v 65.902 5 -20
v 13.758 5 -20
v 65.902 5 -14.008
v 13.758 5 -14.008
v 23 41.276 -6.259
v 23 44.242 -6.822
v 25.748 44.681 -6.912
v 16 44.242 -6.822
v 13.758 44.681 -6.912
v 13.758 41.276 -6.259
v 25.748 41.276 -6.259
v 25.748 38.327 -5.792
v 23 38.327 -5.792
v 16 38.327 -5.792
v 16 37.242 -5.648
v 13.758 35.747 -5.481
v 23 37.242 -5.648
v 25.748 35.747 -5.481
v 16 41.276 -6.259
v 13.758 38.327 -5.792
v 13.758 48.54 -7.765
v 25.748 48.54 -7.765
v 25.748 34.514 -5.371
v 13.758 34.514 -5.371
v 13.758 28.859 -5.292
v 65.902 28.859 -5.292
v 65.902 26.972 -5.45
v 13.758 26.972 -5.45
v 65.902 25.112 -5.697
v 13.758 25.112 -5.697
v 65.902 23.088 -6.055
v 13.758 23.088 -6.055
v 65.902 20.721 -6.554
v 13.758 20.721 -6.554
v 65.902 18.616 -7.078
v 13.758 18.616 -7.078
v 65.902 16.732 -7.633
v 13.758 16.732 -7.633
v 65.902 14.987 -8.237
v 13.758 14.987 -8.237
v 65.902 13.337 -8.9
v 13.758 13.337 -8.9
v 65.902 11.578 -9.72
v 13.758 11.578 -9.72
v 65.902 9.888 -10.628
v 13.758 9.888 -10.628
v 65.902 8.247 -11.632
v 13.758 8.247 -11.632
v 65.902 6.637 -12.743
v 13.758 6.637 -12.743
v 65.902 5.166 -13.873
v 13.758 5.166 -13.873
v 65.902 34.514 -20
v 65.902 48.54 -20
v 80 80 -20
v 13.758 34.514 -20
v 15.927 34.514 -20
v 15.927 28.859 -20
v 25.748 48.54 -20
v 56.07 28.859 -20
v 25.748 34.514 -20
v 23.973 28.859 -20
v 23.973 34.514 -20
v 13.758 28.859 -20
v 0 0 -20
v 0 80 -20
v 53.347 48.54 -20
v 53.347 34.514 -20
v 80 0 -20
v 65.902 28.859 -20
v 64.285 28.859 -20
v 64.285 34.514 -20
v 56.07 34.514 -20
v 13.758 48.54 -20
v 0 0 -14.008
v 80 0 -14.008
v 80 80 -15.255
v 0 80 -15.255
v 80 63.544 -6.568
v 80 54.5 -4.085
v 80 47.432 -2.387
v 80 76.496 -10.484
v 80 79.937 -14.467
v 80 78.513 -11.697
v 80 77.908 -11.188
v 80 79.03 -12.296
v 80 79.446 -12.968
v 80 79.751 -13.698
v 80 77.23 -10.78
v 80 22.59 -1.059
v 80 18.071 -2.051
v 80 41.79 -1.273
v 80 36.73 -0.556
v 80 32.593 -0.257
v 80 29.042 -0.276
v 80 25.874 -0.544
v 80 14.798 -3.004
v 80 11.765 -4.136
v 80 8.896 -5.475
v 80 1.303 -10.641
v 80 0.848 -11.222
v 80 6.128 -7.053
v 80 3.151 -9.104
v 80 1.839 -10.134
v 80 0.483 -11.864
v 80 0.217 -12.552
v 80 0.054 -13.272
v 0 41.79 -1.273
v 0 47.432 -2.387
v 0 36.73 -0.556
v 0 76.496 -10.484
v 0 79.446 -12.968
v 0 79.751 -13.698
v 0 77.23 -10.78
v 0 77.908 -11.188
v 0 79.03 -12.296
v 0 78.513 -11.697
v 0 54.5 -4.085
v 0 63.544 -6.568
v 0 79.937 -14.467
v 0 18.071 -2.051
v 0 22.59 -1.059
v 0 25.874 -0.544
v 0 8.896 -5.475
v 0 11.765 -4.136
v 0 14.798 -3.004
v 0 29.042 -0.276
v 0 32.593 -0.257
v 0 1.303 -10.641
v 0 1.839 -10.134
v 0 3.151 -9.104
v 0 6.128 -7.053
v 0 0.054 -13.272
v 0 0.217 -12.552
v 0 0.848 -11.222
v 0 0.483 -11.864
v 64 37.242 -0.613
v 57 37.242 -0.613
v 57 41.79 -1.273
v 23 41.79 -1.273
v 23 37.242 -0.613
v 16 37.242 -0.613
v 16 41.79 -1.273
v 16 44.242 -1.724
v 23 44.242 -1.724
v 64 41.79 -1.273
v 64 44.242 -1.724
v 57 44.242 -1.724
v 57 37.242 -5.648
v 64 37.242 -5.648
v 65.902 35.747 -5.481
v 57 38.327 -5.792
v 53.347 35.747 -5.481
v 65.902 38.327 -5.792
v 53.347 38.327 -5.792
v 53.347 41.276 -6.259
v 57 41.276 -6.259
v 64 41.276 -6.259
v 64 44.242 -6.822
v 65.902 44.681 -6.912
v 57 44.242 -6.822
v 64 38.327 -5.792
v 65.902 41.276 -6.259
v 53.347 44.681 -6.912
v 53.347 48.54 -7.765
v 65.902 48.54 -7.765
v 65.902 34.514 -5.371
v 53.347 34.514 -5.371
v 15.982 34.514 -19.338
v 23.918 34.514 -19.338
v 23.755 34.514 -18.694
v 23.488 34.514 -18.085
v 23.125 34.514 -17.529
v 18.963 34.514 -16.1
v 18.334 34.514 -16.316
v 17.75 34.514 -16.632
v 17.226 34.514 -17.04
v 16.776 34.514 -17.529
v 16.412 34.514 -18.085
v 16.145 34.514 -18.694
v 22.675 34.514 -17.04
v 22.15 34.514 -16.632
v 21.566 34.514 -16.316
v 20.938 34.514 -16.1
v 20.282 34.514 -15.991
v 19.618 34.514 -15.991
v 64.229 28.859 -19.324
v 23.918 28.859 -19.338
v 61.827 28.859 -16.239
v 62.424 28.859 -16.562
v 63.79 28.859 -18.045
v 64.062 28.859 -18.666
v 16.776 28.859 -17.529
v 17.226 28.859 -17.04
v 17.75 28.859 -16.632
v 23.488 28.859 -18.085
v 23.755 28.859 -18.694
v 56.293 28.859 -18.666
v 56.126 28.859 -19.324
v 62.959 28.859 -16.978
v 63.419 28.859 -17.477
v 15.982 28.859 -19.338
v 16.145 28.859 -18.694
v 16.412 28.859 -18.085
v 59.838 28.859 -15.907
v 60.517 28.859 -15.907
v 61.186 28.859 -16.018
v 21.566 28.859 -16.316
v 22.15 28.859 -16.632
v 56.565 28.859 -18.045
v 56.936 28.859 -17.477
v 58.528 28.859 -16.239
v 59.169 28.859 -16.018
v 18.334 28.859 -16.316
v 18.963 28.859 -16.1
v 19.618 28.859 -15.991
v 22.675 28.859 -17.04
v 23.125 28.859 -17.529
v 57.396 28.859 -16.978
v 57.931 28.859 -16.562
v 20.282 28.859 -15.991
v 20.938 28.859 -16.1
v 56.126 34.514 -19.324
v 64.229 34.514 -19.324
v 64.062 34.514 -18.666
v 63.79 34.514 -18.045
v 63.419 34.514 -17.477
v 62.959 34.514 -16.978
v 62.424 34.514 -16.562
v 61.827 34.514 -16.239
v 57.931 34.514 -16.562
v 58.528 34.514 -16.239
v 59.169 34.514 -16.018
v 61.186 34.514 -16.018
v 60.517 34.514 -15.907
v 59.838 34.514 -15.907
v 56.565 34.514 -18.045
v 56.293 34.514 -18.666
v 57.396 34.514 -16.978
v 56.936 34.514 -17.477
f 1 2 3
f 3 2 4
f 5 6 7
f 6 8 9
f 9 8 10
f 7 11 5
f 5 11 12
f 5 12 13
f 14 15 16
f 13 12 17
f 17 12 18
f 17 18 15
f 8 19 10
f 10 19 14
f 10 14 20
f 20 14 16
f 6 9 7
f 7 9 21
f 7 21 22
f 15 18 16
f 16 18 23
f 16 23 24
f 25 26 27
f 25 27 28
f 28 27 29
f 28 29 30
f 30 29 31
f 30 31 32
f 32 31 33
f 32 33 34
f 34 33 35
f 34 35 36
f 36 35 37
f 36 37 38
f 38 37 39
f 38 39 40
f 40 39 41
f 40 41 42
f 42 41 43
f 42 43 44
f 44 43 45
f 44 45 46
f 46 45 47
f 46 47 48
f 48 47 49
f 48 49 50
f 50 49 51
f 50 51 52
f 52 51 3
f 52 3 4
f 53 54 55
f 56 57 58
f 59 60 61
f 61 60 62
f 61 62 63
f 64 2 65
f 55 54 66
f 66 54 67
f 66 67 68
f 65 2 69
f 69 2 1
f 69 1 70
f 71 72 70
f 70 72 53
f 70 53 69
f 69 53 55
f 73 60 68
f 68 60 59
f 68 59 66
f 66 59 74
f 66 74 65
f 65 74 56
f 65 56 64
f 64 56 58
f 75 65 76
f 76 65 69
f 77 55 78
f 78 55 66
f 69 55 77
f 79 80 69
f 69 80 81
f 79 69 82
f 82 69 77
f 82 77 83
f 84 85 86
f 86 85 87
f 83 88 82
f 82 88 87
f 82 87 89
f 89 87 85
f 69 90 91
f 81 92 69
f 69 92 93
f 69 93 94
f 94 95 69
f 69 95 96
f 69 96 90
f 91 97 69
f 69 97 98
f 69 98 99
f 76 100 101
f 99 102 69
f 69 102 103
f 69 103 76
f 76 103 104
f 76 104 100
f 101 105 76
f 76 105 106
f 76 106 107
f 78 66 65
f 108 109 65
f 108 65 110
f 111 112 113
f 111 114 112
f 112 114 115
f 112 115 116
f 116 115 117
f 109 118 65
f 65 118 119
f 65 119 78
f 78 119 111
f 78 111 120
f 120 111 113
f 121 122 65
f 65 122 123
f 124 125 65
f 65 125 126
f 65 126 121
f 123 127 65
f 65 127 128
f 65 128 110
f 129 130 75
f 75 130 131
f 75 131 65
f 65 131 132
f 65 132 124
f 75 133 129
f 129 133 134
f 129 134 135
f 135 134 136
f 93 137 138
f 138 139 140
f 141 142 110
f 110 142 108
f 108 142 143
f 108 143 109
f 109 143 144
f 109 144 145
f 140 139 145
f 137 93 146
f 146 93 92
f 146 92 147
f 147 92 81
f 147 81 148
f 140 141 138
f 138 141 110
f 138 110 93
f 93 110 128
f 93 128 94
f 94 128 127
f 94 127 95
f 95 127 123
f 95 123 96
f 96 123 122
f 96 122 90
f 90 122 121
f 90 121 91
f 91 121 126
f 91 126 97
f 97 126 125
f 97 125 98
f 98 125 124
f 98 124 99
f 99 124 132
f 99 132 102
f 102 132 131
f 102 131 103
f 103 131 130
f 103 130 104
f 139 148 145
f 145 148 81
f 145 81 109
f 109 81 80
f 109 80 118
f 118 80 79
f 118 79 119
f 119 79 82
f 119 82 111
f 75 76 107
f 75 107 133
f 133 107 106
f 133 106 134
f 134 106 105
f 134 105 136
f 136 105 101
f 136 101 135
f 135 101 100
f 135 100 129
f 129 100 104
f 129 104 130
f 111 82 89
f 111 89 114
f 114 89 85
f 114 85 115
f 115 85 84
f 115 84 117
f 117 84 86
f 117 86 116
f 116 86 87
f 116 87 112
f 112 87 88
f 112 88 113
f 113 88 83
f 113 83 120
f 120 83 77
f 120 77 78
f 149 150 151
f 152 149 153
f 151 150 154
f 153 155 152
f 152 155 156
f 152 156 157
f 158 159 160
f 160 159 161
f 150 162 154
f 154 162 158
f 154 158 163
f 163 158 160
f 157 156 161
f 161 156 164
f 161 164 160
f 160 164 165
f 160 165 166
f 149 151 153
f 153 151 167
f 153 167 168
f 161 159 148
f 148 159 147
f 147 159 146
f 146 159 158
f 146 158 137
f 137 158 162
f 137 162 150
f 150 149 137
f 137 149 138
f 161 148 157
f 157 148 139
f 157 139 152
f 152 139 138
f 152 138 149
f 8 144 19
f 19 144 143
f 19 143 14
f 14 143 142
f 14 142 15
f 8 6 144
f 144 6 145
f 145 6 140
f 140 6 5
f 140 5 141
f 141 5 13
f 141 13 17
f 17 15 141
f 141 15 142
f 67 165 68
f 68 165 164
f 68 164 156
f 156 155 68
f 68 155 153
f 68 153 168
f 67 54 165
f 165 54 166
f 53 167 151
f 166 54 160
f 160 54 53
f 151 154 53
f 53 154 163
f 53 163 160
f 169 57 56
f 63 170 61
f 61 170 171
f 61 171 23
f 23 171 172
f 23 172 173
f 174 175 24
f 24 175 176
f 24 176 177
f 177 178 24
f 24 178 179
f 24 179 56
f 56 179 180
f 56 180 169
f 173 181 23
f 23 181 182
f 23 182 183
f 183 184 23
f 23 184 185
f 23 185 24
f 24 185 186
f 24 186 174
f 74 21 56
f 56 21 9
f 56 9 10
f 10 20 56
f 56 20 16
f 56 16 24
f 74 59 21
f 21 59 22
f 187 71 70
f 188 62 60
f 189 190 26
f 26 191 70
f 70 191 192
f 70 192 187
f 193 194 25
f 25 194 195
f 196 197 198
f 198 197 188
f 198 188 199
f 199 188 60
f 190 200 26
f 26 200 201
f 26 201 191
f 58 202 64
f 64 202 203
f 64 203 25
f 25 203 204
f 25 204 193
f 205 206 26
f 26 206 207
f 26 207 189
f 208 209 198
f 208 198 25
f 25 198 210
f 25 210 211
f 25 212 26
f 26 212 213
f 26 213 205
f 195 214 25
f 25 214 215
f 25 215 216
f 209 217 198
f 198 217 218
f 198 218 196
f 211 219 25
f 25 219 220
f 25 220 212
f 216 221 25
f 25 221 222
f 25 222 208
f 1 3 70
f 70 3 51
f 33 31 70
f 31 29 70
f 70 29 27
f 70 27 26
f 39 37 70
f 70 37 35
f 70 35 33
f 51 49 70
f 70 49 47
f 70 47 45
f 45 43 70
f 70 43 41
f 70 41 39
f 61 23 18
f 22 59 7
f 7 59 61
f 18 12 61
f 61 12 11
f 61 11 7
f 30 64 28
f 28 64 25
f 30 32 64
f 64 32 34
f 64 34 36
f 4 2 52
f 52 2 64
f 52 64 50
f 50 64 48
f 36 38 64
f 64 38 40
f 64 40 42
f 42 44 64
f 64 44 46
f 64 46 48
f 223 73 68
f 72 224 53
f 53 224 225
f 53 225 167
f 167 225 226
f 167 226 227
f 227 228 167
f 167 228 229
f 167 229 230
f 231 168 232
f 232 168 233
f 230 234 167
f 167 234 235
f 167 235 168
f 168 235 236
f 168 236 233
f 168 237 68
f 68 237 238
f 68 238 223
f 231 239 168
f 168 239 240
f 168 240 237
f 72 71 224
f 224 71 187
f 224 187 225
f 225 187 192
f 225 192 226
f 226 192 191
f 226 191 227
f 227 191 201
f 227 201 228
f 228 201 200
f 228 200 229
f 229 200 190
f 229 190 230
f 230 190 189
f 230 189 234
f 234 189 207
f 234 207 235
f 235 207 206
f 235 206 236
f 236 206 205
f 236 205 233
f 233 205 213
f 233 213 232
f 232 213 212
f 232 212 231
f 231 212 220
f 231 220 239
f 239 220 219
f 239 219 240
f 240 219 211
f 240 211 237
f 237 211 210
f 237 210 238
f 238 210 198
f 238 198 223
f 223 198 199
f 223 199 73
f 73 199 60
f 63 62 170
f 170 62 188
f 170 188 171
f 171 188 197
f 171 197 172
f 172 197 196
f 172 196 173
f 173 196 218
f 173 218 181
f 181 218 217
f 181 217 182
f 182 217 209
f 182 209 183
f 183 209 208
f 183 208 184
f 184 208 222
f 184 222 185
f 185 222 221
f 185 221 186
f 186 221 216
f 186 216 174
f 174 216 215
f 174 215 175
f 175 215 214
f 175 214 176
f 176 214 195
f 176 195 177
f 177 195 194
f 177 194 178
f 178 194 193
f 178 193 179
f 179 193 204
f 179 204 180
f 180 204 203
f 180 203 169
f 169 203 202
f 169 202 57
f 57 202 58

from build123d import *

# Parameters (mm, degrees)
SKETCH_1_W          = 20
SKETCH_1_H          = 80
EXTRUDE_1_DEPTH     = 80
CUT_EXTRUDE_1_DEPTH = 80
FILLET_1_R          = 5
SHELL_START         = 5
SHELL_3_DEPTH       = 70
SKETCH_3_W          = 7
SKETCH_3_H          = 7
CUT_EXTRUDE_3_DEPTH = 80
EXTRUDE_2_REACH     = 116.851
SKETCH_5_W          = 27.599035465
SKETCH_5_H          = 14.025739335
CUT_EXTRUDE_4_REACH = 99.033


# Read off the part's stored shape, not the designer's step: 쉘3
with BuildPart() as part:
    # 스케치1 → 보스-돌출1 (new body)
    with BuildSketch(Plane(origin=(0, 0, 0), x_dir=(0, 0, -1), z_dir=(1, 0, 0))):
        with Locations((10, 40)):
            Rectangle(SKETCH_1_W, SKETCH_1_H)
    extrude(amount=EXTRUDE_1_DEPTH)

    # 스케치2 → 컷-돌출1 (cut)
    with BuildSketch(Plane(origin=(80, 0, 0), x_dir=(0, 0, -1), z_dir=(1, 0, 0))):
        with BuildLine():
            Line((11.591590564, 80), (0, 80))
            Line((0, 80), (0, 0))
            Line((0, 0), (11.716359911, 0))
            add(Edge.make_bspline(
                [(11.591590564, 80), (-0.788687354, 41.111711297), (-0.930526633, 26.247395441), (4.911818792, 7.512157383), (11.716359911, 0)],
                knots=[0, 0, 0, 0, 0.618156119, 1, 1, 1, 1], degree=3))
        make_face()
    extrude(amount=-CUT_EXTRUDE_1_DEPTH, mode=Mode.SUBTRACT)

    # 필렛1
    fillet_1_edges = [part.edges().sort_by_distance(p)[0] for p in [
        (40, 0, -11.716359911),
        (40, 80, -11.591590564),
    ]]
    fillet(fillet_1_edges, radius=FILLET_1_R)

    # 쉘3 outline → 쉘3 (cut)
    with BuildSketch(Plane.YZ.offset(SHELL_START)):
        with BuildLine():
            Line((75, -20), (74.999999784, -15.255073686))
            add(Edge.make_bspline(
                [(74.999999784, -15.255073686), (67.829779133, -13.006113736), (61.460626662, -11.089637393), (55.828308111, -9.484643566), (50.869216464, -8.170232316), (46.521341581, -7.124664573), (42.721071813, -6.328318286), (39.413038096, -5.75562944), (36.528279577, -5.38717997), (34.019435823, -5.193621195), (31.801971368, -5.138118071), (29.778808064, -5.199766787), (27.603301228, -5.385408593), (27.354777332, -5.408490332), (27.107693601, -5.433274029), (26.861838696, -5.459730531), (26.617002242, -5.487832823), (26.37297533, -5.51755571), (26.129551021, -5.548875499), (25.886524852, -5.58176968), (25.643695341, -5.616216611), (25.400864489, -5.652195196), (25.157838288, -5.689684571), (24.792721691, -5.74815339), (24.670919935, -5.768015368), (24.548998185, -5.788247154), (24.426932957, -5.808846127), (24.304701052, -5.829809608), (24.182279559, -5.851134857), (24.059645852, -5.872819075), (23.936777592, -5.894859408), (23.813652725, -5.917252938), (23.690249485, -5.939996692), (23.566546391, -5.963087636), (23.380510176, -5.9982402), (23.318417709, -6.010043782), (23.256242285, -6.021932999), (23.19398134, -6.033907425), (23.131632313, -6.045966636), (23.069192642, -6.058110205), (23.006659764, -6.070337707), (22.944031116, -6.082648717), (22.881304137, -6.095042809), (22.818476264, -6.107519557), (22.755544936, -6.120078536), (22.660988915, -6.139039713), (22.629443763, -6.145380547), (22.597871828, -6.151741763), (22.566272805, -6.158123302), (22.534646389, -6.164525103), (22.502992275, -6.170947108), (22.47131016, -6.177389256), (22.439599737, -6.183851489), (22.407860702, -6.190333746), (22.376092751, -6.196835968), (22.344295578, -6.203358095), (22.28064218, -6.216442041), (22.248806222, -6.222999664), (22.216787665, -6.229608787), (22.185173002, -6.236146877), (22.153078028, -6.242800703), (22.121376446, -6.249383567), (22.089482075, -6.256023898), (22.057634411, -6.262666185), (22.025810888, -6.269319179), (21.993971685, -6.275989337), (21.962144136, -6.282671775), (21.421131548, -6.396511112), (20.913058418, -6.507182675), (20.406011367, -6.621904848), (19.899891415, -6.741190042), (19.394589314, -6.865543681), (18.889985152, -6.995466763), (18.385947953, -7.131458412), (17.882335283, -7.274018442), (17.378992852, -7.423649906), (16.875754115, -7.580861664), (16.372439878, -7.746170929), (14.987735061, -8.224441618), (14.105794888, -8.555181627), (13.222026102, -8.915168442), (12.335314555, -9.307325609), (11.444469206, -9.734725562), (10.548267461, -10.200624762), (9.645511658, -10.708471458), (8.735088494, -11.261891437), (7.816023195, -11.864657175), (6.887520219, -12.520645756), (5.94898228, -13.233790964), (4.999999509, -14.008034922)],
                knots=[0.019005596, 0.019005596, 0.019005596, 0.019005596, 0.019005596, 0.019005596, 0.019005596, 0.019005596, 0.019005596, 0.019005596, 0.019005596, 0.019005596, 0.019005596, 0.5, 0.5, 0.5, 0.5, 0.5, 0.5, 0.5, 0.5, 0.5, 0.5, 0.5, 0.5625, 0.5625, 0.5625, 0.5625, 0.5625, 0.5625, 0.5625, 0.5625, 0.5625, 0.5625, 0.5625, 0.59375, 0.59375, 0.59375, 0.59375, 0.59375, 0.59375, 0.59375, 0.59375, 0.59375, 0.59375, 0.59375, 0.609375, 0.609375, 0.609375, 0.609375, 0.609375, 0.609375, 0.609375, 0.609375, 0.609375, 0.609375, 0.609375, 0.6171875, 0.6171875, 0.6171875, 0.6171875, 0.6171875, 0.6171875, 0.6171875, 0.6171875, 0.6171875, 0.6171875, 0.6171875, 0.625, 0.625, 0.625, 0.625, 0.625, 0.625, 0.625, 0.625, 0.625, 0.625, 0.625, 0.75, 0.75, 0.75, 0.75, 0.75, 0.75, 0.75, 0.75, 0.75, 0.75, 0.75, 0.968713852, 0.968713852, 0.968713852, 0.968713852, 0.968713852, 0.968713852, 0.968713852, 0.968713852, 0.968713852, 0.968713852, 0.968713852, 0.968713852, 0.968713852], degree=12))
            Line((4.999999509, -14.008034922), (5, -20))
            Line((5, -20), (75, -20))
        make_face()
    extrude(amount=SHELL_3_DEPTH, mode=Mode.SUBTRACT)

    # 스케치3 → 컷-돌출3 (cut)
    with BuildSketch(Plane.XY):
        with Locations((19.5, 40.741655041)):
            Rectangle(SKETCH_3_W, SKETCH_3_H)
        with Locations((60.5, 40.741655041)):
            Rectangle(SKETCH_3_W, SKETCH_3_H)
    extrude(amount=-CUT_EXTRUDE_3_DEPTH, mode=Mode.SUBTRACT)

    # 스케치5 → 보스-돌출2 (add, up to next)
    with BuildSketch(Plane(origin=(0, 0, -20), x_dir=(-1, 0, 0), z_dir=(0, 0, -1)), mode=Mode.PRIVATE) as extrude_2_sk1:
        Polygon((-5, 75), (-75, 75), (-75, 48.539865482), (-65.902373449, 48.539865482), (-53.347074528, 48.539865482), (-25.748039063, 48.539865482), (-13.758294148, 48.539865482), (-5, 48.539865482), align=None)
    extrude_2_tool1 = extrude(extrude_2_sk1.sketch, amount=-EXTRUDE_2_REACH, mode=Mode.PRIVATE) - part.part
    # 스케치5 → 보스-돌출2 (add, up to next)
    with BuildSketch(Plane(origin=(0, 0, -20), x_dir=(-1, 0, 0), z_dir=(0, 0, -1)), mode=Mode.PRIVATE) as extrude_2_sk2:
        Polygon((-65.902373449, 48.539865482), (-75, 48.539865482), (-75, 5), (-65.902373449, 5), (-65.902373449, 28.858586093), (-65.902373449, 34.514126147), align=None)
    extrude_2_tool2 = extrude(extrude_2_sk2.sketch, amount=-EXTRUDE_2_REACH, mode=Mode.PRIVATE) - part.part
    # 스케치5 → 보스-돌출2 (add, up to next)
    with BuildSketch(Plane(origin=(0, 0, -20), x_dir=(-1, 0, 0), z_dir=(0, 0, -1)), mode=Mode.PRIVATE) as extrude_2_sk3:
        with Locations((-39.547556796, 41.526995814)):
            Rectangle(SKETCH_5_W, SKETCH_5_H)
    extrude_2_tool3 = extrude(extrude_2_sk3.sketch, amount=-EXTRUDE_2_REACH, mode=Mode.PRIVATE) - part.part
    # 스케치5 → 보스-돌출2 (add, up to next)
    with BuildSketch(Plane(origin=(0, 0, -20), x_dir=(-1, 0, 0), z_dir=(0, 0, -1)), mode=Mode.PRIVATE) as extrude_2_sk4:
        Polygon((-53.347074528, 34.514126147), (-65.902373449, 34.514126147), (-65.902373449, 28.858586093), (-13.758294148, 28.858586093), (-13.758294148, 34.514126147), (-25.748039063, 34.514126147), align=None)
    extrude_2_tool4 = extrude(extrude_2_sk4.sketch, amount=-EXTRUDE_2_REACH, mode=Mode.PRIVATE) - part.part
    # 스케치5 → 보스-돌출2 (add, up to next)
    with BuildSketch(Plane(origin=(0, 0, -20), x_dir=(-1, 0, 0), z_dir=(0, 0, -1)), mode=Mode.PRIVATE) as extrude_2_sk5:
        Polygon((-5, 5), (-5, 48.539865482), (-13.758294148, 48.539865482), (-13.758294148, 34.514126147), (-13.758294148, 28.858586093), (-13.758294148, 5), align=None)
    extrude_2_tool5 = extrude(extrude_2_sk5.sketch, amount=-EXTRUDE_2_REACH, mode=Mode.PRIVATE) - part.part
    add(extrude_2_tool1.solids().sort_by_distance((40, 61.769933, -20))[0])
    add(extrude_2_tool2.solids().sort_by_distance((70.451187, 26.769933, -20))[0])
    add(extrude_2_tool3.solids().sort_by_distance((39.547557, 41.526996, -20))[0])
    add(extrude_2_tool4.solids().sort_by_distance((39.830334, 31.686356, -20))[0])
    add(extrude_2_tool5.solids().sort_by_distance((9.379147, 26.769933, -20))[0])

    # 스케치6 → 컷-돌출4 (cut, up to next)
    with BuildSketch(Plane.XZ.offset(-28.858586093), mode=Mode.PRIVATE) as cut_extrude_4_sk1:
        with BuildLine():
            Line((15.927376618, -20), (23.972864062, -20))
            ThreePointArc((23.972864062, -20), (19.95012034, -15.977256278), (15.927376618, -20))
        make_face()
    cut_extrude_4_tool1 = extrude(cut_extrude_4_sk1.sketch, amount=-CUT_EXTRUDE_4_REACH, mode=Mode.PRIVATE) & part.part
    # 스케치6 → 컷-돌출4 (cut, up to next)
    with BuildSketch(Plane.XZ.offset(-28.858586093), mode=Mode.PRIVATE) as cut_extrude_4_sk2:
        with BuildLine():
            Line((56.070366463, -20), (64.284748666, -20))
            ThreePointArc((64.284748666, -20), (60.177557564, -15.892808898), (56.070366463, -20))
        make_face()
    cut_extrude_4_tool2 = extrude(cut_extrude_4_sk2.sketch, amount=-CUT_EXTRUDE_4_REACH, mode=Mode.PRIVATE) & part.part
    add(cut_extrude_4_tool1.solids().sort_by_distance((19.95012, 28.858586, -18.292695))[0], mode=Mode.SUBTRACT)
    add(cut_extrude_4_tool2.solids().sort_by_distance((60.177558, 28.858586, -18.256854))[0], mode=Mode.SUBTRACT)


solid = part.part
